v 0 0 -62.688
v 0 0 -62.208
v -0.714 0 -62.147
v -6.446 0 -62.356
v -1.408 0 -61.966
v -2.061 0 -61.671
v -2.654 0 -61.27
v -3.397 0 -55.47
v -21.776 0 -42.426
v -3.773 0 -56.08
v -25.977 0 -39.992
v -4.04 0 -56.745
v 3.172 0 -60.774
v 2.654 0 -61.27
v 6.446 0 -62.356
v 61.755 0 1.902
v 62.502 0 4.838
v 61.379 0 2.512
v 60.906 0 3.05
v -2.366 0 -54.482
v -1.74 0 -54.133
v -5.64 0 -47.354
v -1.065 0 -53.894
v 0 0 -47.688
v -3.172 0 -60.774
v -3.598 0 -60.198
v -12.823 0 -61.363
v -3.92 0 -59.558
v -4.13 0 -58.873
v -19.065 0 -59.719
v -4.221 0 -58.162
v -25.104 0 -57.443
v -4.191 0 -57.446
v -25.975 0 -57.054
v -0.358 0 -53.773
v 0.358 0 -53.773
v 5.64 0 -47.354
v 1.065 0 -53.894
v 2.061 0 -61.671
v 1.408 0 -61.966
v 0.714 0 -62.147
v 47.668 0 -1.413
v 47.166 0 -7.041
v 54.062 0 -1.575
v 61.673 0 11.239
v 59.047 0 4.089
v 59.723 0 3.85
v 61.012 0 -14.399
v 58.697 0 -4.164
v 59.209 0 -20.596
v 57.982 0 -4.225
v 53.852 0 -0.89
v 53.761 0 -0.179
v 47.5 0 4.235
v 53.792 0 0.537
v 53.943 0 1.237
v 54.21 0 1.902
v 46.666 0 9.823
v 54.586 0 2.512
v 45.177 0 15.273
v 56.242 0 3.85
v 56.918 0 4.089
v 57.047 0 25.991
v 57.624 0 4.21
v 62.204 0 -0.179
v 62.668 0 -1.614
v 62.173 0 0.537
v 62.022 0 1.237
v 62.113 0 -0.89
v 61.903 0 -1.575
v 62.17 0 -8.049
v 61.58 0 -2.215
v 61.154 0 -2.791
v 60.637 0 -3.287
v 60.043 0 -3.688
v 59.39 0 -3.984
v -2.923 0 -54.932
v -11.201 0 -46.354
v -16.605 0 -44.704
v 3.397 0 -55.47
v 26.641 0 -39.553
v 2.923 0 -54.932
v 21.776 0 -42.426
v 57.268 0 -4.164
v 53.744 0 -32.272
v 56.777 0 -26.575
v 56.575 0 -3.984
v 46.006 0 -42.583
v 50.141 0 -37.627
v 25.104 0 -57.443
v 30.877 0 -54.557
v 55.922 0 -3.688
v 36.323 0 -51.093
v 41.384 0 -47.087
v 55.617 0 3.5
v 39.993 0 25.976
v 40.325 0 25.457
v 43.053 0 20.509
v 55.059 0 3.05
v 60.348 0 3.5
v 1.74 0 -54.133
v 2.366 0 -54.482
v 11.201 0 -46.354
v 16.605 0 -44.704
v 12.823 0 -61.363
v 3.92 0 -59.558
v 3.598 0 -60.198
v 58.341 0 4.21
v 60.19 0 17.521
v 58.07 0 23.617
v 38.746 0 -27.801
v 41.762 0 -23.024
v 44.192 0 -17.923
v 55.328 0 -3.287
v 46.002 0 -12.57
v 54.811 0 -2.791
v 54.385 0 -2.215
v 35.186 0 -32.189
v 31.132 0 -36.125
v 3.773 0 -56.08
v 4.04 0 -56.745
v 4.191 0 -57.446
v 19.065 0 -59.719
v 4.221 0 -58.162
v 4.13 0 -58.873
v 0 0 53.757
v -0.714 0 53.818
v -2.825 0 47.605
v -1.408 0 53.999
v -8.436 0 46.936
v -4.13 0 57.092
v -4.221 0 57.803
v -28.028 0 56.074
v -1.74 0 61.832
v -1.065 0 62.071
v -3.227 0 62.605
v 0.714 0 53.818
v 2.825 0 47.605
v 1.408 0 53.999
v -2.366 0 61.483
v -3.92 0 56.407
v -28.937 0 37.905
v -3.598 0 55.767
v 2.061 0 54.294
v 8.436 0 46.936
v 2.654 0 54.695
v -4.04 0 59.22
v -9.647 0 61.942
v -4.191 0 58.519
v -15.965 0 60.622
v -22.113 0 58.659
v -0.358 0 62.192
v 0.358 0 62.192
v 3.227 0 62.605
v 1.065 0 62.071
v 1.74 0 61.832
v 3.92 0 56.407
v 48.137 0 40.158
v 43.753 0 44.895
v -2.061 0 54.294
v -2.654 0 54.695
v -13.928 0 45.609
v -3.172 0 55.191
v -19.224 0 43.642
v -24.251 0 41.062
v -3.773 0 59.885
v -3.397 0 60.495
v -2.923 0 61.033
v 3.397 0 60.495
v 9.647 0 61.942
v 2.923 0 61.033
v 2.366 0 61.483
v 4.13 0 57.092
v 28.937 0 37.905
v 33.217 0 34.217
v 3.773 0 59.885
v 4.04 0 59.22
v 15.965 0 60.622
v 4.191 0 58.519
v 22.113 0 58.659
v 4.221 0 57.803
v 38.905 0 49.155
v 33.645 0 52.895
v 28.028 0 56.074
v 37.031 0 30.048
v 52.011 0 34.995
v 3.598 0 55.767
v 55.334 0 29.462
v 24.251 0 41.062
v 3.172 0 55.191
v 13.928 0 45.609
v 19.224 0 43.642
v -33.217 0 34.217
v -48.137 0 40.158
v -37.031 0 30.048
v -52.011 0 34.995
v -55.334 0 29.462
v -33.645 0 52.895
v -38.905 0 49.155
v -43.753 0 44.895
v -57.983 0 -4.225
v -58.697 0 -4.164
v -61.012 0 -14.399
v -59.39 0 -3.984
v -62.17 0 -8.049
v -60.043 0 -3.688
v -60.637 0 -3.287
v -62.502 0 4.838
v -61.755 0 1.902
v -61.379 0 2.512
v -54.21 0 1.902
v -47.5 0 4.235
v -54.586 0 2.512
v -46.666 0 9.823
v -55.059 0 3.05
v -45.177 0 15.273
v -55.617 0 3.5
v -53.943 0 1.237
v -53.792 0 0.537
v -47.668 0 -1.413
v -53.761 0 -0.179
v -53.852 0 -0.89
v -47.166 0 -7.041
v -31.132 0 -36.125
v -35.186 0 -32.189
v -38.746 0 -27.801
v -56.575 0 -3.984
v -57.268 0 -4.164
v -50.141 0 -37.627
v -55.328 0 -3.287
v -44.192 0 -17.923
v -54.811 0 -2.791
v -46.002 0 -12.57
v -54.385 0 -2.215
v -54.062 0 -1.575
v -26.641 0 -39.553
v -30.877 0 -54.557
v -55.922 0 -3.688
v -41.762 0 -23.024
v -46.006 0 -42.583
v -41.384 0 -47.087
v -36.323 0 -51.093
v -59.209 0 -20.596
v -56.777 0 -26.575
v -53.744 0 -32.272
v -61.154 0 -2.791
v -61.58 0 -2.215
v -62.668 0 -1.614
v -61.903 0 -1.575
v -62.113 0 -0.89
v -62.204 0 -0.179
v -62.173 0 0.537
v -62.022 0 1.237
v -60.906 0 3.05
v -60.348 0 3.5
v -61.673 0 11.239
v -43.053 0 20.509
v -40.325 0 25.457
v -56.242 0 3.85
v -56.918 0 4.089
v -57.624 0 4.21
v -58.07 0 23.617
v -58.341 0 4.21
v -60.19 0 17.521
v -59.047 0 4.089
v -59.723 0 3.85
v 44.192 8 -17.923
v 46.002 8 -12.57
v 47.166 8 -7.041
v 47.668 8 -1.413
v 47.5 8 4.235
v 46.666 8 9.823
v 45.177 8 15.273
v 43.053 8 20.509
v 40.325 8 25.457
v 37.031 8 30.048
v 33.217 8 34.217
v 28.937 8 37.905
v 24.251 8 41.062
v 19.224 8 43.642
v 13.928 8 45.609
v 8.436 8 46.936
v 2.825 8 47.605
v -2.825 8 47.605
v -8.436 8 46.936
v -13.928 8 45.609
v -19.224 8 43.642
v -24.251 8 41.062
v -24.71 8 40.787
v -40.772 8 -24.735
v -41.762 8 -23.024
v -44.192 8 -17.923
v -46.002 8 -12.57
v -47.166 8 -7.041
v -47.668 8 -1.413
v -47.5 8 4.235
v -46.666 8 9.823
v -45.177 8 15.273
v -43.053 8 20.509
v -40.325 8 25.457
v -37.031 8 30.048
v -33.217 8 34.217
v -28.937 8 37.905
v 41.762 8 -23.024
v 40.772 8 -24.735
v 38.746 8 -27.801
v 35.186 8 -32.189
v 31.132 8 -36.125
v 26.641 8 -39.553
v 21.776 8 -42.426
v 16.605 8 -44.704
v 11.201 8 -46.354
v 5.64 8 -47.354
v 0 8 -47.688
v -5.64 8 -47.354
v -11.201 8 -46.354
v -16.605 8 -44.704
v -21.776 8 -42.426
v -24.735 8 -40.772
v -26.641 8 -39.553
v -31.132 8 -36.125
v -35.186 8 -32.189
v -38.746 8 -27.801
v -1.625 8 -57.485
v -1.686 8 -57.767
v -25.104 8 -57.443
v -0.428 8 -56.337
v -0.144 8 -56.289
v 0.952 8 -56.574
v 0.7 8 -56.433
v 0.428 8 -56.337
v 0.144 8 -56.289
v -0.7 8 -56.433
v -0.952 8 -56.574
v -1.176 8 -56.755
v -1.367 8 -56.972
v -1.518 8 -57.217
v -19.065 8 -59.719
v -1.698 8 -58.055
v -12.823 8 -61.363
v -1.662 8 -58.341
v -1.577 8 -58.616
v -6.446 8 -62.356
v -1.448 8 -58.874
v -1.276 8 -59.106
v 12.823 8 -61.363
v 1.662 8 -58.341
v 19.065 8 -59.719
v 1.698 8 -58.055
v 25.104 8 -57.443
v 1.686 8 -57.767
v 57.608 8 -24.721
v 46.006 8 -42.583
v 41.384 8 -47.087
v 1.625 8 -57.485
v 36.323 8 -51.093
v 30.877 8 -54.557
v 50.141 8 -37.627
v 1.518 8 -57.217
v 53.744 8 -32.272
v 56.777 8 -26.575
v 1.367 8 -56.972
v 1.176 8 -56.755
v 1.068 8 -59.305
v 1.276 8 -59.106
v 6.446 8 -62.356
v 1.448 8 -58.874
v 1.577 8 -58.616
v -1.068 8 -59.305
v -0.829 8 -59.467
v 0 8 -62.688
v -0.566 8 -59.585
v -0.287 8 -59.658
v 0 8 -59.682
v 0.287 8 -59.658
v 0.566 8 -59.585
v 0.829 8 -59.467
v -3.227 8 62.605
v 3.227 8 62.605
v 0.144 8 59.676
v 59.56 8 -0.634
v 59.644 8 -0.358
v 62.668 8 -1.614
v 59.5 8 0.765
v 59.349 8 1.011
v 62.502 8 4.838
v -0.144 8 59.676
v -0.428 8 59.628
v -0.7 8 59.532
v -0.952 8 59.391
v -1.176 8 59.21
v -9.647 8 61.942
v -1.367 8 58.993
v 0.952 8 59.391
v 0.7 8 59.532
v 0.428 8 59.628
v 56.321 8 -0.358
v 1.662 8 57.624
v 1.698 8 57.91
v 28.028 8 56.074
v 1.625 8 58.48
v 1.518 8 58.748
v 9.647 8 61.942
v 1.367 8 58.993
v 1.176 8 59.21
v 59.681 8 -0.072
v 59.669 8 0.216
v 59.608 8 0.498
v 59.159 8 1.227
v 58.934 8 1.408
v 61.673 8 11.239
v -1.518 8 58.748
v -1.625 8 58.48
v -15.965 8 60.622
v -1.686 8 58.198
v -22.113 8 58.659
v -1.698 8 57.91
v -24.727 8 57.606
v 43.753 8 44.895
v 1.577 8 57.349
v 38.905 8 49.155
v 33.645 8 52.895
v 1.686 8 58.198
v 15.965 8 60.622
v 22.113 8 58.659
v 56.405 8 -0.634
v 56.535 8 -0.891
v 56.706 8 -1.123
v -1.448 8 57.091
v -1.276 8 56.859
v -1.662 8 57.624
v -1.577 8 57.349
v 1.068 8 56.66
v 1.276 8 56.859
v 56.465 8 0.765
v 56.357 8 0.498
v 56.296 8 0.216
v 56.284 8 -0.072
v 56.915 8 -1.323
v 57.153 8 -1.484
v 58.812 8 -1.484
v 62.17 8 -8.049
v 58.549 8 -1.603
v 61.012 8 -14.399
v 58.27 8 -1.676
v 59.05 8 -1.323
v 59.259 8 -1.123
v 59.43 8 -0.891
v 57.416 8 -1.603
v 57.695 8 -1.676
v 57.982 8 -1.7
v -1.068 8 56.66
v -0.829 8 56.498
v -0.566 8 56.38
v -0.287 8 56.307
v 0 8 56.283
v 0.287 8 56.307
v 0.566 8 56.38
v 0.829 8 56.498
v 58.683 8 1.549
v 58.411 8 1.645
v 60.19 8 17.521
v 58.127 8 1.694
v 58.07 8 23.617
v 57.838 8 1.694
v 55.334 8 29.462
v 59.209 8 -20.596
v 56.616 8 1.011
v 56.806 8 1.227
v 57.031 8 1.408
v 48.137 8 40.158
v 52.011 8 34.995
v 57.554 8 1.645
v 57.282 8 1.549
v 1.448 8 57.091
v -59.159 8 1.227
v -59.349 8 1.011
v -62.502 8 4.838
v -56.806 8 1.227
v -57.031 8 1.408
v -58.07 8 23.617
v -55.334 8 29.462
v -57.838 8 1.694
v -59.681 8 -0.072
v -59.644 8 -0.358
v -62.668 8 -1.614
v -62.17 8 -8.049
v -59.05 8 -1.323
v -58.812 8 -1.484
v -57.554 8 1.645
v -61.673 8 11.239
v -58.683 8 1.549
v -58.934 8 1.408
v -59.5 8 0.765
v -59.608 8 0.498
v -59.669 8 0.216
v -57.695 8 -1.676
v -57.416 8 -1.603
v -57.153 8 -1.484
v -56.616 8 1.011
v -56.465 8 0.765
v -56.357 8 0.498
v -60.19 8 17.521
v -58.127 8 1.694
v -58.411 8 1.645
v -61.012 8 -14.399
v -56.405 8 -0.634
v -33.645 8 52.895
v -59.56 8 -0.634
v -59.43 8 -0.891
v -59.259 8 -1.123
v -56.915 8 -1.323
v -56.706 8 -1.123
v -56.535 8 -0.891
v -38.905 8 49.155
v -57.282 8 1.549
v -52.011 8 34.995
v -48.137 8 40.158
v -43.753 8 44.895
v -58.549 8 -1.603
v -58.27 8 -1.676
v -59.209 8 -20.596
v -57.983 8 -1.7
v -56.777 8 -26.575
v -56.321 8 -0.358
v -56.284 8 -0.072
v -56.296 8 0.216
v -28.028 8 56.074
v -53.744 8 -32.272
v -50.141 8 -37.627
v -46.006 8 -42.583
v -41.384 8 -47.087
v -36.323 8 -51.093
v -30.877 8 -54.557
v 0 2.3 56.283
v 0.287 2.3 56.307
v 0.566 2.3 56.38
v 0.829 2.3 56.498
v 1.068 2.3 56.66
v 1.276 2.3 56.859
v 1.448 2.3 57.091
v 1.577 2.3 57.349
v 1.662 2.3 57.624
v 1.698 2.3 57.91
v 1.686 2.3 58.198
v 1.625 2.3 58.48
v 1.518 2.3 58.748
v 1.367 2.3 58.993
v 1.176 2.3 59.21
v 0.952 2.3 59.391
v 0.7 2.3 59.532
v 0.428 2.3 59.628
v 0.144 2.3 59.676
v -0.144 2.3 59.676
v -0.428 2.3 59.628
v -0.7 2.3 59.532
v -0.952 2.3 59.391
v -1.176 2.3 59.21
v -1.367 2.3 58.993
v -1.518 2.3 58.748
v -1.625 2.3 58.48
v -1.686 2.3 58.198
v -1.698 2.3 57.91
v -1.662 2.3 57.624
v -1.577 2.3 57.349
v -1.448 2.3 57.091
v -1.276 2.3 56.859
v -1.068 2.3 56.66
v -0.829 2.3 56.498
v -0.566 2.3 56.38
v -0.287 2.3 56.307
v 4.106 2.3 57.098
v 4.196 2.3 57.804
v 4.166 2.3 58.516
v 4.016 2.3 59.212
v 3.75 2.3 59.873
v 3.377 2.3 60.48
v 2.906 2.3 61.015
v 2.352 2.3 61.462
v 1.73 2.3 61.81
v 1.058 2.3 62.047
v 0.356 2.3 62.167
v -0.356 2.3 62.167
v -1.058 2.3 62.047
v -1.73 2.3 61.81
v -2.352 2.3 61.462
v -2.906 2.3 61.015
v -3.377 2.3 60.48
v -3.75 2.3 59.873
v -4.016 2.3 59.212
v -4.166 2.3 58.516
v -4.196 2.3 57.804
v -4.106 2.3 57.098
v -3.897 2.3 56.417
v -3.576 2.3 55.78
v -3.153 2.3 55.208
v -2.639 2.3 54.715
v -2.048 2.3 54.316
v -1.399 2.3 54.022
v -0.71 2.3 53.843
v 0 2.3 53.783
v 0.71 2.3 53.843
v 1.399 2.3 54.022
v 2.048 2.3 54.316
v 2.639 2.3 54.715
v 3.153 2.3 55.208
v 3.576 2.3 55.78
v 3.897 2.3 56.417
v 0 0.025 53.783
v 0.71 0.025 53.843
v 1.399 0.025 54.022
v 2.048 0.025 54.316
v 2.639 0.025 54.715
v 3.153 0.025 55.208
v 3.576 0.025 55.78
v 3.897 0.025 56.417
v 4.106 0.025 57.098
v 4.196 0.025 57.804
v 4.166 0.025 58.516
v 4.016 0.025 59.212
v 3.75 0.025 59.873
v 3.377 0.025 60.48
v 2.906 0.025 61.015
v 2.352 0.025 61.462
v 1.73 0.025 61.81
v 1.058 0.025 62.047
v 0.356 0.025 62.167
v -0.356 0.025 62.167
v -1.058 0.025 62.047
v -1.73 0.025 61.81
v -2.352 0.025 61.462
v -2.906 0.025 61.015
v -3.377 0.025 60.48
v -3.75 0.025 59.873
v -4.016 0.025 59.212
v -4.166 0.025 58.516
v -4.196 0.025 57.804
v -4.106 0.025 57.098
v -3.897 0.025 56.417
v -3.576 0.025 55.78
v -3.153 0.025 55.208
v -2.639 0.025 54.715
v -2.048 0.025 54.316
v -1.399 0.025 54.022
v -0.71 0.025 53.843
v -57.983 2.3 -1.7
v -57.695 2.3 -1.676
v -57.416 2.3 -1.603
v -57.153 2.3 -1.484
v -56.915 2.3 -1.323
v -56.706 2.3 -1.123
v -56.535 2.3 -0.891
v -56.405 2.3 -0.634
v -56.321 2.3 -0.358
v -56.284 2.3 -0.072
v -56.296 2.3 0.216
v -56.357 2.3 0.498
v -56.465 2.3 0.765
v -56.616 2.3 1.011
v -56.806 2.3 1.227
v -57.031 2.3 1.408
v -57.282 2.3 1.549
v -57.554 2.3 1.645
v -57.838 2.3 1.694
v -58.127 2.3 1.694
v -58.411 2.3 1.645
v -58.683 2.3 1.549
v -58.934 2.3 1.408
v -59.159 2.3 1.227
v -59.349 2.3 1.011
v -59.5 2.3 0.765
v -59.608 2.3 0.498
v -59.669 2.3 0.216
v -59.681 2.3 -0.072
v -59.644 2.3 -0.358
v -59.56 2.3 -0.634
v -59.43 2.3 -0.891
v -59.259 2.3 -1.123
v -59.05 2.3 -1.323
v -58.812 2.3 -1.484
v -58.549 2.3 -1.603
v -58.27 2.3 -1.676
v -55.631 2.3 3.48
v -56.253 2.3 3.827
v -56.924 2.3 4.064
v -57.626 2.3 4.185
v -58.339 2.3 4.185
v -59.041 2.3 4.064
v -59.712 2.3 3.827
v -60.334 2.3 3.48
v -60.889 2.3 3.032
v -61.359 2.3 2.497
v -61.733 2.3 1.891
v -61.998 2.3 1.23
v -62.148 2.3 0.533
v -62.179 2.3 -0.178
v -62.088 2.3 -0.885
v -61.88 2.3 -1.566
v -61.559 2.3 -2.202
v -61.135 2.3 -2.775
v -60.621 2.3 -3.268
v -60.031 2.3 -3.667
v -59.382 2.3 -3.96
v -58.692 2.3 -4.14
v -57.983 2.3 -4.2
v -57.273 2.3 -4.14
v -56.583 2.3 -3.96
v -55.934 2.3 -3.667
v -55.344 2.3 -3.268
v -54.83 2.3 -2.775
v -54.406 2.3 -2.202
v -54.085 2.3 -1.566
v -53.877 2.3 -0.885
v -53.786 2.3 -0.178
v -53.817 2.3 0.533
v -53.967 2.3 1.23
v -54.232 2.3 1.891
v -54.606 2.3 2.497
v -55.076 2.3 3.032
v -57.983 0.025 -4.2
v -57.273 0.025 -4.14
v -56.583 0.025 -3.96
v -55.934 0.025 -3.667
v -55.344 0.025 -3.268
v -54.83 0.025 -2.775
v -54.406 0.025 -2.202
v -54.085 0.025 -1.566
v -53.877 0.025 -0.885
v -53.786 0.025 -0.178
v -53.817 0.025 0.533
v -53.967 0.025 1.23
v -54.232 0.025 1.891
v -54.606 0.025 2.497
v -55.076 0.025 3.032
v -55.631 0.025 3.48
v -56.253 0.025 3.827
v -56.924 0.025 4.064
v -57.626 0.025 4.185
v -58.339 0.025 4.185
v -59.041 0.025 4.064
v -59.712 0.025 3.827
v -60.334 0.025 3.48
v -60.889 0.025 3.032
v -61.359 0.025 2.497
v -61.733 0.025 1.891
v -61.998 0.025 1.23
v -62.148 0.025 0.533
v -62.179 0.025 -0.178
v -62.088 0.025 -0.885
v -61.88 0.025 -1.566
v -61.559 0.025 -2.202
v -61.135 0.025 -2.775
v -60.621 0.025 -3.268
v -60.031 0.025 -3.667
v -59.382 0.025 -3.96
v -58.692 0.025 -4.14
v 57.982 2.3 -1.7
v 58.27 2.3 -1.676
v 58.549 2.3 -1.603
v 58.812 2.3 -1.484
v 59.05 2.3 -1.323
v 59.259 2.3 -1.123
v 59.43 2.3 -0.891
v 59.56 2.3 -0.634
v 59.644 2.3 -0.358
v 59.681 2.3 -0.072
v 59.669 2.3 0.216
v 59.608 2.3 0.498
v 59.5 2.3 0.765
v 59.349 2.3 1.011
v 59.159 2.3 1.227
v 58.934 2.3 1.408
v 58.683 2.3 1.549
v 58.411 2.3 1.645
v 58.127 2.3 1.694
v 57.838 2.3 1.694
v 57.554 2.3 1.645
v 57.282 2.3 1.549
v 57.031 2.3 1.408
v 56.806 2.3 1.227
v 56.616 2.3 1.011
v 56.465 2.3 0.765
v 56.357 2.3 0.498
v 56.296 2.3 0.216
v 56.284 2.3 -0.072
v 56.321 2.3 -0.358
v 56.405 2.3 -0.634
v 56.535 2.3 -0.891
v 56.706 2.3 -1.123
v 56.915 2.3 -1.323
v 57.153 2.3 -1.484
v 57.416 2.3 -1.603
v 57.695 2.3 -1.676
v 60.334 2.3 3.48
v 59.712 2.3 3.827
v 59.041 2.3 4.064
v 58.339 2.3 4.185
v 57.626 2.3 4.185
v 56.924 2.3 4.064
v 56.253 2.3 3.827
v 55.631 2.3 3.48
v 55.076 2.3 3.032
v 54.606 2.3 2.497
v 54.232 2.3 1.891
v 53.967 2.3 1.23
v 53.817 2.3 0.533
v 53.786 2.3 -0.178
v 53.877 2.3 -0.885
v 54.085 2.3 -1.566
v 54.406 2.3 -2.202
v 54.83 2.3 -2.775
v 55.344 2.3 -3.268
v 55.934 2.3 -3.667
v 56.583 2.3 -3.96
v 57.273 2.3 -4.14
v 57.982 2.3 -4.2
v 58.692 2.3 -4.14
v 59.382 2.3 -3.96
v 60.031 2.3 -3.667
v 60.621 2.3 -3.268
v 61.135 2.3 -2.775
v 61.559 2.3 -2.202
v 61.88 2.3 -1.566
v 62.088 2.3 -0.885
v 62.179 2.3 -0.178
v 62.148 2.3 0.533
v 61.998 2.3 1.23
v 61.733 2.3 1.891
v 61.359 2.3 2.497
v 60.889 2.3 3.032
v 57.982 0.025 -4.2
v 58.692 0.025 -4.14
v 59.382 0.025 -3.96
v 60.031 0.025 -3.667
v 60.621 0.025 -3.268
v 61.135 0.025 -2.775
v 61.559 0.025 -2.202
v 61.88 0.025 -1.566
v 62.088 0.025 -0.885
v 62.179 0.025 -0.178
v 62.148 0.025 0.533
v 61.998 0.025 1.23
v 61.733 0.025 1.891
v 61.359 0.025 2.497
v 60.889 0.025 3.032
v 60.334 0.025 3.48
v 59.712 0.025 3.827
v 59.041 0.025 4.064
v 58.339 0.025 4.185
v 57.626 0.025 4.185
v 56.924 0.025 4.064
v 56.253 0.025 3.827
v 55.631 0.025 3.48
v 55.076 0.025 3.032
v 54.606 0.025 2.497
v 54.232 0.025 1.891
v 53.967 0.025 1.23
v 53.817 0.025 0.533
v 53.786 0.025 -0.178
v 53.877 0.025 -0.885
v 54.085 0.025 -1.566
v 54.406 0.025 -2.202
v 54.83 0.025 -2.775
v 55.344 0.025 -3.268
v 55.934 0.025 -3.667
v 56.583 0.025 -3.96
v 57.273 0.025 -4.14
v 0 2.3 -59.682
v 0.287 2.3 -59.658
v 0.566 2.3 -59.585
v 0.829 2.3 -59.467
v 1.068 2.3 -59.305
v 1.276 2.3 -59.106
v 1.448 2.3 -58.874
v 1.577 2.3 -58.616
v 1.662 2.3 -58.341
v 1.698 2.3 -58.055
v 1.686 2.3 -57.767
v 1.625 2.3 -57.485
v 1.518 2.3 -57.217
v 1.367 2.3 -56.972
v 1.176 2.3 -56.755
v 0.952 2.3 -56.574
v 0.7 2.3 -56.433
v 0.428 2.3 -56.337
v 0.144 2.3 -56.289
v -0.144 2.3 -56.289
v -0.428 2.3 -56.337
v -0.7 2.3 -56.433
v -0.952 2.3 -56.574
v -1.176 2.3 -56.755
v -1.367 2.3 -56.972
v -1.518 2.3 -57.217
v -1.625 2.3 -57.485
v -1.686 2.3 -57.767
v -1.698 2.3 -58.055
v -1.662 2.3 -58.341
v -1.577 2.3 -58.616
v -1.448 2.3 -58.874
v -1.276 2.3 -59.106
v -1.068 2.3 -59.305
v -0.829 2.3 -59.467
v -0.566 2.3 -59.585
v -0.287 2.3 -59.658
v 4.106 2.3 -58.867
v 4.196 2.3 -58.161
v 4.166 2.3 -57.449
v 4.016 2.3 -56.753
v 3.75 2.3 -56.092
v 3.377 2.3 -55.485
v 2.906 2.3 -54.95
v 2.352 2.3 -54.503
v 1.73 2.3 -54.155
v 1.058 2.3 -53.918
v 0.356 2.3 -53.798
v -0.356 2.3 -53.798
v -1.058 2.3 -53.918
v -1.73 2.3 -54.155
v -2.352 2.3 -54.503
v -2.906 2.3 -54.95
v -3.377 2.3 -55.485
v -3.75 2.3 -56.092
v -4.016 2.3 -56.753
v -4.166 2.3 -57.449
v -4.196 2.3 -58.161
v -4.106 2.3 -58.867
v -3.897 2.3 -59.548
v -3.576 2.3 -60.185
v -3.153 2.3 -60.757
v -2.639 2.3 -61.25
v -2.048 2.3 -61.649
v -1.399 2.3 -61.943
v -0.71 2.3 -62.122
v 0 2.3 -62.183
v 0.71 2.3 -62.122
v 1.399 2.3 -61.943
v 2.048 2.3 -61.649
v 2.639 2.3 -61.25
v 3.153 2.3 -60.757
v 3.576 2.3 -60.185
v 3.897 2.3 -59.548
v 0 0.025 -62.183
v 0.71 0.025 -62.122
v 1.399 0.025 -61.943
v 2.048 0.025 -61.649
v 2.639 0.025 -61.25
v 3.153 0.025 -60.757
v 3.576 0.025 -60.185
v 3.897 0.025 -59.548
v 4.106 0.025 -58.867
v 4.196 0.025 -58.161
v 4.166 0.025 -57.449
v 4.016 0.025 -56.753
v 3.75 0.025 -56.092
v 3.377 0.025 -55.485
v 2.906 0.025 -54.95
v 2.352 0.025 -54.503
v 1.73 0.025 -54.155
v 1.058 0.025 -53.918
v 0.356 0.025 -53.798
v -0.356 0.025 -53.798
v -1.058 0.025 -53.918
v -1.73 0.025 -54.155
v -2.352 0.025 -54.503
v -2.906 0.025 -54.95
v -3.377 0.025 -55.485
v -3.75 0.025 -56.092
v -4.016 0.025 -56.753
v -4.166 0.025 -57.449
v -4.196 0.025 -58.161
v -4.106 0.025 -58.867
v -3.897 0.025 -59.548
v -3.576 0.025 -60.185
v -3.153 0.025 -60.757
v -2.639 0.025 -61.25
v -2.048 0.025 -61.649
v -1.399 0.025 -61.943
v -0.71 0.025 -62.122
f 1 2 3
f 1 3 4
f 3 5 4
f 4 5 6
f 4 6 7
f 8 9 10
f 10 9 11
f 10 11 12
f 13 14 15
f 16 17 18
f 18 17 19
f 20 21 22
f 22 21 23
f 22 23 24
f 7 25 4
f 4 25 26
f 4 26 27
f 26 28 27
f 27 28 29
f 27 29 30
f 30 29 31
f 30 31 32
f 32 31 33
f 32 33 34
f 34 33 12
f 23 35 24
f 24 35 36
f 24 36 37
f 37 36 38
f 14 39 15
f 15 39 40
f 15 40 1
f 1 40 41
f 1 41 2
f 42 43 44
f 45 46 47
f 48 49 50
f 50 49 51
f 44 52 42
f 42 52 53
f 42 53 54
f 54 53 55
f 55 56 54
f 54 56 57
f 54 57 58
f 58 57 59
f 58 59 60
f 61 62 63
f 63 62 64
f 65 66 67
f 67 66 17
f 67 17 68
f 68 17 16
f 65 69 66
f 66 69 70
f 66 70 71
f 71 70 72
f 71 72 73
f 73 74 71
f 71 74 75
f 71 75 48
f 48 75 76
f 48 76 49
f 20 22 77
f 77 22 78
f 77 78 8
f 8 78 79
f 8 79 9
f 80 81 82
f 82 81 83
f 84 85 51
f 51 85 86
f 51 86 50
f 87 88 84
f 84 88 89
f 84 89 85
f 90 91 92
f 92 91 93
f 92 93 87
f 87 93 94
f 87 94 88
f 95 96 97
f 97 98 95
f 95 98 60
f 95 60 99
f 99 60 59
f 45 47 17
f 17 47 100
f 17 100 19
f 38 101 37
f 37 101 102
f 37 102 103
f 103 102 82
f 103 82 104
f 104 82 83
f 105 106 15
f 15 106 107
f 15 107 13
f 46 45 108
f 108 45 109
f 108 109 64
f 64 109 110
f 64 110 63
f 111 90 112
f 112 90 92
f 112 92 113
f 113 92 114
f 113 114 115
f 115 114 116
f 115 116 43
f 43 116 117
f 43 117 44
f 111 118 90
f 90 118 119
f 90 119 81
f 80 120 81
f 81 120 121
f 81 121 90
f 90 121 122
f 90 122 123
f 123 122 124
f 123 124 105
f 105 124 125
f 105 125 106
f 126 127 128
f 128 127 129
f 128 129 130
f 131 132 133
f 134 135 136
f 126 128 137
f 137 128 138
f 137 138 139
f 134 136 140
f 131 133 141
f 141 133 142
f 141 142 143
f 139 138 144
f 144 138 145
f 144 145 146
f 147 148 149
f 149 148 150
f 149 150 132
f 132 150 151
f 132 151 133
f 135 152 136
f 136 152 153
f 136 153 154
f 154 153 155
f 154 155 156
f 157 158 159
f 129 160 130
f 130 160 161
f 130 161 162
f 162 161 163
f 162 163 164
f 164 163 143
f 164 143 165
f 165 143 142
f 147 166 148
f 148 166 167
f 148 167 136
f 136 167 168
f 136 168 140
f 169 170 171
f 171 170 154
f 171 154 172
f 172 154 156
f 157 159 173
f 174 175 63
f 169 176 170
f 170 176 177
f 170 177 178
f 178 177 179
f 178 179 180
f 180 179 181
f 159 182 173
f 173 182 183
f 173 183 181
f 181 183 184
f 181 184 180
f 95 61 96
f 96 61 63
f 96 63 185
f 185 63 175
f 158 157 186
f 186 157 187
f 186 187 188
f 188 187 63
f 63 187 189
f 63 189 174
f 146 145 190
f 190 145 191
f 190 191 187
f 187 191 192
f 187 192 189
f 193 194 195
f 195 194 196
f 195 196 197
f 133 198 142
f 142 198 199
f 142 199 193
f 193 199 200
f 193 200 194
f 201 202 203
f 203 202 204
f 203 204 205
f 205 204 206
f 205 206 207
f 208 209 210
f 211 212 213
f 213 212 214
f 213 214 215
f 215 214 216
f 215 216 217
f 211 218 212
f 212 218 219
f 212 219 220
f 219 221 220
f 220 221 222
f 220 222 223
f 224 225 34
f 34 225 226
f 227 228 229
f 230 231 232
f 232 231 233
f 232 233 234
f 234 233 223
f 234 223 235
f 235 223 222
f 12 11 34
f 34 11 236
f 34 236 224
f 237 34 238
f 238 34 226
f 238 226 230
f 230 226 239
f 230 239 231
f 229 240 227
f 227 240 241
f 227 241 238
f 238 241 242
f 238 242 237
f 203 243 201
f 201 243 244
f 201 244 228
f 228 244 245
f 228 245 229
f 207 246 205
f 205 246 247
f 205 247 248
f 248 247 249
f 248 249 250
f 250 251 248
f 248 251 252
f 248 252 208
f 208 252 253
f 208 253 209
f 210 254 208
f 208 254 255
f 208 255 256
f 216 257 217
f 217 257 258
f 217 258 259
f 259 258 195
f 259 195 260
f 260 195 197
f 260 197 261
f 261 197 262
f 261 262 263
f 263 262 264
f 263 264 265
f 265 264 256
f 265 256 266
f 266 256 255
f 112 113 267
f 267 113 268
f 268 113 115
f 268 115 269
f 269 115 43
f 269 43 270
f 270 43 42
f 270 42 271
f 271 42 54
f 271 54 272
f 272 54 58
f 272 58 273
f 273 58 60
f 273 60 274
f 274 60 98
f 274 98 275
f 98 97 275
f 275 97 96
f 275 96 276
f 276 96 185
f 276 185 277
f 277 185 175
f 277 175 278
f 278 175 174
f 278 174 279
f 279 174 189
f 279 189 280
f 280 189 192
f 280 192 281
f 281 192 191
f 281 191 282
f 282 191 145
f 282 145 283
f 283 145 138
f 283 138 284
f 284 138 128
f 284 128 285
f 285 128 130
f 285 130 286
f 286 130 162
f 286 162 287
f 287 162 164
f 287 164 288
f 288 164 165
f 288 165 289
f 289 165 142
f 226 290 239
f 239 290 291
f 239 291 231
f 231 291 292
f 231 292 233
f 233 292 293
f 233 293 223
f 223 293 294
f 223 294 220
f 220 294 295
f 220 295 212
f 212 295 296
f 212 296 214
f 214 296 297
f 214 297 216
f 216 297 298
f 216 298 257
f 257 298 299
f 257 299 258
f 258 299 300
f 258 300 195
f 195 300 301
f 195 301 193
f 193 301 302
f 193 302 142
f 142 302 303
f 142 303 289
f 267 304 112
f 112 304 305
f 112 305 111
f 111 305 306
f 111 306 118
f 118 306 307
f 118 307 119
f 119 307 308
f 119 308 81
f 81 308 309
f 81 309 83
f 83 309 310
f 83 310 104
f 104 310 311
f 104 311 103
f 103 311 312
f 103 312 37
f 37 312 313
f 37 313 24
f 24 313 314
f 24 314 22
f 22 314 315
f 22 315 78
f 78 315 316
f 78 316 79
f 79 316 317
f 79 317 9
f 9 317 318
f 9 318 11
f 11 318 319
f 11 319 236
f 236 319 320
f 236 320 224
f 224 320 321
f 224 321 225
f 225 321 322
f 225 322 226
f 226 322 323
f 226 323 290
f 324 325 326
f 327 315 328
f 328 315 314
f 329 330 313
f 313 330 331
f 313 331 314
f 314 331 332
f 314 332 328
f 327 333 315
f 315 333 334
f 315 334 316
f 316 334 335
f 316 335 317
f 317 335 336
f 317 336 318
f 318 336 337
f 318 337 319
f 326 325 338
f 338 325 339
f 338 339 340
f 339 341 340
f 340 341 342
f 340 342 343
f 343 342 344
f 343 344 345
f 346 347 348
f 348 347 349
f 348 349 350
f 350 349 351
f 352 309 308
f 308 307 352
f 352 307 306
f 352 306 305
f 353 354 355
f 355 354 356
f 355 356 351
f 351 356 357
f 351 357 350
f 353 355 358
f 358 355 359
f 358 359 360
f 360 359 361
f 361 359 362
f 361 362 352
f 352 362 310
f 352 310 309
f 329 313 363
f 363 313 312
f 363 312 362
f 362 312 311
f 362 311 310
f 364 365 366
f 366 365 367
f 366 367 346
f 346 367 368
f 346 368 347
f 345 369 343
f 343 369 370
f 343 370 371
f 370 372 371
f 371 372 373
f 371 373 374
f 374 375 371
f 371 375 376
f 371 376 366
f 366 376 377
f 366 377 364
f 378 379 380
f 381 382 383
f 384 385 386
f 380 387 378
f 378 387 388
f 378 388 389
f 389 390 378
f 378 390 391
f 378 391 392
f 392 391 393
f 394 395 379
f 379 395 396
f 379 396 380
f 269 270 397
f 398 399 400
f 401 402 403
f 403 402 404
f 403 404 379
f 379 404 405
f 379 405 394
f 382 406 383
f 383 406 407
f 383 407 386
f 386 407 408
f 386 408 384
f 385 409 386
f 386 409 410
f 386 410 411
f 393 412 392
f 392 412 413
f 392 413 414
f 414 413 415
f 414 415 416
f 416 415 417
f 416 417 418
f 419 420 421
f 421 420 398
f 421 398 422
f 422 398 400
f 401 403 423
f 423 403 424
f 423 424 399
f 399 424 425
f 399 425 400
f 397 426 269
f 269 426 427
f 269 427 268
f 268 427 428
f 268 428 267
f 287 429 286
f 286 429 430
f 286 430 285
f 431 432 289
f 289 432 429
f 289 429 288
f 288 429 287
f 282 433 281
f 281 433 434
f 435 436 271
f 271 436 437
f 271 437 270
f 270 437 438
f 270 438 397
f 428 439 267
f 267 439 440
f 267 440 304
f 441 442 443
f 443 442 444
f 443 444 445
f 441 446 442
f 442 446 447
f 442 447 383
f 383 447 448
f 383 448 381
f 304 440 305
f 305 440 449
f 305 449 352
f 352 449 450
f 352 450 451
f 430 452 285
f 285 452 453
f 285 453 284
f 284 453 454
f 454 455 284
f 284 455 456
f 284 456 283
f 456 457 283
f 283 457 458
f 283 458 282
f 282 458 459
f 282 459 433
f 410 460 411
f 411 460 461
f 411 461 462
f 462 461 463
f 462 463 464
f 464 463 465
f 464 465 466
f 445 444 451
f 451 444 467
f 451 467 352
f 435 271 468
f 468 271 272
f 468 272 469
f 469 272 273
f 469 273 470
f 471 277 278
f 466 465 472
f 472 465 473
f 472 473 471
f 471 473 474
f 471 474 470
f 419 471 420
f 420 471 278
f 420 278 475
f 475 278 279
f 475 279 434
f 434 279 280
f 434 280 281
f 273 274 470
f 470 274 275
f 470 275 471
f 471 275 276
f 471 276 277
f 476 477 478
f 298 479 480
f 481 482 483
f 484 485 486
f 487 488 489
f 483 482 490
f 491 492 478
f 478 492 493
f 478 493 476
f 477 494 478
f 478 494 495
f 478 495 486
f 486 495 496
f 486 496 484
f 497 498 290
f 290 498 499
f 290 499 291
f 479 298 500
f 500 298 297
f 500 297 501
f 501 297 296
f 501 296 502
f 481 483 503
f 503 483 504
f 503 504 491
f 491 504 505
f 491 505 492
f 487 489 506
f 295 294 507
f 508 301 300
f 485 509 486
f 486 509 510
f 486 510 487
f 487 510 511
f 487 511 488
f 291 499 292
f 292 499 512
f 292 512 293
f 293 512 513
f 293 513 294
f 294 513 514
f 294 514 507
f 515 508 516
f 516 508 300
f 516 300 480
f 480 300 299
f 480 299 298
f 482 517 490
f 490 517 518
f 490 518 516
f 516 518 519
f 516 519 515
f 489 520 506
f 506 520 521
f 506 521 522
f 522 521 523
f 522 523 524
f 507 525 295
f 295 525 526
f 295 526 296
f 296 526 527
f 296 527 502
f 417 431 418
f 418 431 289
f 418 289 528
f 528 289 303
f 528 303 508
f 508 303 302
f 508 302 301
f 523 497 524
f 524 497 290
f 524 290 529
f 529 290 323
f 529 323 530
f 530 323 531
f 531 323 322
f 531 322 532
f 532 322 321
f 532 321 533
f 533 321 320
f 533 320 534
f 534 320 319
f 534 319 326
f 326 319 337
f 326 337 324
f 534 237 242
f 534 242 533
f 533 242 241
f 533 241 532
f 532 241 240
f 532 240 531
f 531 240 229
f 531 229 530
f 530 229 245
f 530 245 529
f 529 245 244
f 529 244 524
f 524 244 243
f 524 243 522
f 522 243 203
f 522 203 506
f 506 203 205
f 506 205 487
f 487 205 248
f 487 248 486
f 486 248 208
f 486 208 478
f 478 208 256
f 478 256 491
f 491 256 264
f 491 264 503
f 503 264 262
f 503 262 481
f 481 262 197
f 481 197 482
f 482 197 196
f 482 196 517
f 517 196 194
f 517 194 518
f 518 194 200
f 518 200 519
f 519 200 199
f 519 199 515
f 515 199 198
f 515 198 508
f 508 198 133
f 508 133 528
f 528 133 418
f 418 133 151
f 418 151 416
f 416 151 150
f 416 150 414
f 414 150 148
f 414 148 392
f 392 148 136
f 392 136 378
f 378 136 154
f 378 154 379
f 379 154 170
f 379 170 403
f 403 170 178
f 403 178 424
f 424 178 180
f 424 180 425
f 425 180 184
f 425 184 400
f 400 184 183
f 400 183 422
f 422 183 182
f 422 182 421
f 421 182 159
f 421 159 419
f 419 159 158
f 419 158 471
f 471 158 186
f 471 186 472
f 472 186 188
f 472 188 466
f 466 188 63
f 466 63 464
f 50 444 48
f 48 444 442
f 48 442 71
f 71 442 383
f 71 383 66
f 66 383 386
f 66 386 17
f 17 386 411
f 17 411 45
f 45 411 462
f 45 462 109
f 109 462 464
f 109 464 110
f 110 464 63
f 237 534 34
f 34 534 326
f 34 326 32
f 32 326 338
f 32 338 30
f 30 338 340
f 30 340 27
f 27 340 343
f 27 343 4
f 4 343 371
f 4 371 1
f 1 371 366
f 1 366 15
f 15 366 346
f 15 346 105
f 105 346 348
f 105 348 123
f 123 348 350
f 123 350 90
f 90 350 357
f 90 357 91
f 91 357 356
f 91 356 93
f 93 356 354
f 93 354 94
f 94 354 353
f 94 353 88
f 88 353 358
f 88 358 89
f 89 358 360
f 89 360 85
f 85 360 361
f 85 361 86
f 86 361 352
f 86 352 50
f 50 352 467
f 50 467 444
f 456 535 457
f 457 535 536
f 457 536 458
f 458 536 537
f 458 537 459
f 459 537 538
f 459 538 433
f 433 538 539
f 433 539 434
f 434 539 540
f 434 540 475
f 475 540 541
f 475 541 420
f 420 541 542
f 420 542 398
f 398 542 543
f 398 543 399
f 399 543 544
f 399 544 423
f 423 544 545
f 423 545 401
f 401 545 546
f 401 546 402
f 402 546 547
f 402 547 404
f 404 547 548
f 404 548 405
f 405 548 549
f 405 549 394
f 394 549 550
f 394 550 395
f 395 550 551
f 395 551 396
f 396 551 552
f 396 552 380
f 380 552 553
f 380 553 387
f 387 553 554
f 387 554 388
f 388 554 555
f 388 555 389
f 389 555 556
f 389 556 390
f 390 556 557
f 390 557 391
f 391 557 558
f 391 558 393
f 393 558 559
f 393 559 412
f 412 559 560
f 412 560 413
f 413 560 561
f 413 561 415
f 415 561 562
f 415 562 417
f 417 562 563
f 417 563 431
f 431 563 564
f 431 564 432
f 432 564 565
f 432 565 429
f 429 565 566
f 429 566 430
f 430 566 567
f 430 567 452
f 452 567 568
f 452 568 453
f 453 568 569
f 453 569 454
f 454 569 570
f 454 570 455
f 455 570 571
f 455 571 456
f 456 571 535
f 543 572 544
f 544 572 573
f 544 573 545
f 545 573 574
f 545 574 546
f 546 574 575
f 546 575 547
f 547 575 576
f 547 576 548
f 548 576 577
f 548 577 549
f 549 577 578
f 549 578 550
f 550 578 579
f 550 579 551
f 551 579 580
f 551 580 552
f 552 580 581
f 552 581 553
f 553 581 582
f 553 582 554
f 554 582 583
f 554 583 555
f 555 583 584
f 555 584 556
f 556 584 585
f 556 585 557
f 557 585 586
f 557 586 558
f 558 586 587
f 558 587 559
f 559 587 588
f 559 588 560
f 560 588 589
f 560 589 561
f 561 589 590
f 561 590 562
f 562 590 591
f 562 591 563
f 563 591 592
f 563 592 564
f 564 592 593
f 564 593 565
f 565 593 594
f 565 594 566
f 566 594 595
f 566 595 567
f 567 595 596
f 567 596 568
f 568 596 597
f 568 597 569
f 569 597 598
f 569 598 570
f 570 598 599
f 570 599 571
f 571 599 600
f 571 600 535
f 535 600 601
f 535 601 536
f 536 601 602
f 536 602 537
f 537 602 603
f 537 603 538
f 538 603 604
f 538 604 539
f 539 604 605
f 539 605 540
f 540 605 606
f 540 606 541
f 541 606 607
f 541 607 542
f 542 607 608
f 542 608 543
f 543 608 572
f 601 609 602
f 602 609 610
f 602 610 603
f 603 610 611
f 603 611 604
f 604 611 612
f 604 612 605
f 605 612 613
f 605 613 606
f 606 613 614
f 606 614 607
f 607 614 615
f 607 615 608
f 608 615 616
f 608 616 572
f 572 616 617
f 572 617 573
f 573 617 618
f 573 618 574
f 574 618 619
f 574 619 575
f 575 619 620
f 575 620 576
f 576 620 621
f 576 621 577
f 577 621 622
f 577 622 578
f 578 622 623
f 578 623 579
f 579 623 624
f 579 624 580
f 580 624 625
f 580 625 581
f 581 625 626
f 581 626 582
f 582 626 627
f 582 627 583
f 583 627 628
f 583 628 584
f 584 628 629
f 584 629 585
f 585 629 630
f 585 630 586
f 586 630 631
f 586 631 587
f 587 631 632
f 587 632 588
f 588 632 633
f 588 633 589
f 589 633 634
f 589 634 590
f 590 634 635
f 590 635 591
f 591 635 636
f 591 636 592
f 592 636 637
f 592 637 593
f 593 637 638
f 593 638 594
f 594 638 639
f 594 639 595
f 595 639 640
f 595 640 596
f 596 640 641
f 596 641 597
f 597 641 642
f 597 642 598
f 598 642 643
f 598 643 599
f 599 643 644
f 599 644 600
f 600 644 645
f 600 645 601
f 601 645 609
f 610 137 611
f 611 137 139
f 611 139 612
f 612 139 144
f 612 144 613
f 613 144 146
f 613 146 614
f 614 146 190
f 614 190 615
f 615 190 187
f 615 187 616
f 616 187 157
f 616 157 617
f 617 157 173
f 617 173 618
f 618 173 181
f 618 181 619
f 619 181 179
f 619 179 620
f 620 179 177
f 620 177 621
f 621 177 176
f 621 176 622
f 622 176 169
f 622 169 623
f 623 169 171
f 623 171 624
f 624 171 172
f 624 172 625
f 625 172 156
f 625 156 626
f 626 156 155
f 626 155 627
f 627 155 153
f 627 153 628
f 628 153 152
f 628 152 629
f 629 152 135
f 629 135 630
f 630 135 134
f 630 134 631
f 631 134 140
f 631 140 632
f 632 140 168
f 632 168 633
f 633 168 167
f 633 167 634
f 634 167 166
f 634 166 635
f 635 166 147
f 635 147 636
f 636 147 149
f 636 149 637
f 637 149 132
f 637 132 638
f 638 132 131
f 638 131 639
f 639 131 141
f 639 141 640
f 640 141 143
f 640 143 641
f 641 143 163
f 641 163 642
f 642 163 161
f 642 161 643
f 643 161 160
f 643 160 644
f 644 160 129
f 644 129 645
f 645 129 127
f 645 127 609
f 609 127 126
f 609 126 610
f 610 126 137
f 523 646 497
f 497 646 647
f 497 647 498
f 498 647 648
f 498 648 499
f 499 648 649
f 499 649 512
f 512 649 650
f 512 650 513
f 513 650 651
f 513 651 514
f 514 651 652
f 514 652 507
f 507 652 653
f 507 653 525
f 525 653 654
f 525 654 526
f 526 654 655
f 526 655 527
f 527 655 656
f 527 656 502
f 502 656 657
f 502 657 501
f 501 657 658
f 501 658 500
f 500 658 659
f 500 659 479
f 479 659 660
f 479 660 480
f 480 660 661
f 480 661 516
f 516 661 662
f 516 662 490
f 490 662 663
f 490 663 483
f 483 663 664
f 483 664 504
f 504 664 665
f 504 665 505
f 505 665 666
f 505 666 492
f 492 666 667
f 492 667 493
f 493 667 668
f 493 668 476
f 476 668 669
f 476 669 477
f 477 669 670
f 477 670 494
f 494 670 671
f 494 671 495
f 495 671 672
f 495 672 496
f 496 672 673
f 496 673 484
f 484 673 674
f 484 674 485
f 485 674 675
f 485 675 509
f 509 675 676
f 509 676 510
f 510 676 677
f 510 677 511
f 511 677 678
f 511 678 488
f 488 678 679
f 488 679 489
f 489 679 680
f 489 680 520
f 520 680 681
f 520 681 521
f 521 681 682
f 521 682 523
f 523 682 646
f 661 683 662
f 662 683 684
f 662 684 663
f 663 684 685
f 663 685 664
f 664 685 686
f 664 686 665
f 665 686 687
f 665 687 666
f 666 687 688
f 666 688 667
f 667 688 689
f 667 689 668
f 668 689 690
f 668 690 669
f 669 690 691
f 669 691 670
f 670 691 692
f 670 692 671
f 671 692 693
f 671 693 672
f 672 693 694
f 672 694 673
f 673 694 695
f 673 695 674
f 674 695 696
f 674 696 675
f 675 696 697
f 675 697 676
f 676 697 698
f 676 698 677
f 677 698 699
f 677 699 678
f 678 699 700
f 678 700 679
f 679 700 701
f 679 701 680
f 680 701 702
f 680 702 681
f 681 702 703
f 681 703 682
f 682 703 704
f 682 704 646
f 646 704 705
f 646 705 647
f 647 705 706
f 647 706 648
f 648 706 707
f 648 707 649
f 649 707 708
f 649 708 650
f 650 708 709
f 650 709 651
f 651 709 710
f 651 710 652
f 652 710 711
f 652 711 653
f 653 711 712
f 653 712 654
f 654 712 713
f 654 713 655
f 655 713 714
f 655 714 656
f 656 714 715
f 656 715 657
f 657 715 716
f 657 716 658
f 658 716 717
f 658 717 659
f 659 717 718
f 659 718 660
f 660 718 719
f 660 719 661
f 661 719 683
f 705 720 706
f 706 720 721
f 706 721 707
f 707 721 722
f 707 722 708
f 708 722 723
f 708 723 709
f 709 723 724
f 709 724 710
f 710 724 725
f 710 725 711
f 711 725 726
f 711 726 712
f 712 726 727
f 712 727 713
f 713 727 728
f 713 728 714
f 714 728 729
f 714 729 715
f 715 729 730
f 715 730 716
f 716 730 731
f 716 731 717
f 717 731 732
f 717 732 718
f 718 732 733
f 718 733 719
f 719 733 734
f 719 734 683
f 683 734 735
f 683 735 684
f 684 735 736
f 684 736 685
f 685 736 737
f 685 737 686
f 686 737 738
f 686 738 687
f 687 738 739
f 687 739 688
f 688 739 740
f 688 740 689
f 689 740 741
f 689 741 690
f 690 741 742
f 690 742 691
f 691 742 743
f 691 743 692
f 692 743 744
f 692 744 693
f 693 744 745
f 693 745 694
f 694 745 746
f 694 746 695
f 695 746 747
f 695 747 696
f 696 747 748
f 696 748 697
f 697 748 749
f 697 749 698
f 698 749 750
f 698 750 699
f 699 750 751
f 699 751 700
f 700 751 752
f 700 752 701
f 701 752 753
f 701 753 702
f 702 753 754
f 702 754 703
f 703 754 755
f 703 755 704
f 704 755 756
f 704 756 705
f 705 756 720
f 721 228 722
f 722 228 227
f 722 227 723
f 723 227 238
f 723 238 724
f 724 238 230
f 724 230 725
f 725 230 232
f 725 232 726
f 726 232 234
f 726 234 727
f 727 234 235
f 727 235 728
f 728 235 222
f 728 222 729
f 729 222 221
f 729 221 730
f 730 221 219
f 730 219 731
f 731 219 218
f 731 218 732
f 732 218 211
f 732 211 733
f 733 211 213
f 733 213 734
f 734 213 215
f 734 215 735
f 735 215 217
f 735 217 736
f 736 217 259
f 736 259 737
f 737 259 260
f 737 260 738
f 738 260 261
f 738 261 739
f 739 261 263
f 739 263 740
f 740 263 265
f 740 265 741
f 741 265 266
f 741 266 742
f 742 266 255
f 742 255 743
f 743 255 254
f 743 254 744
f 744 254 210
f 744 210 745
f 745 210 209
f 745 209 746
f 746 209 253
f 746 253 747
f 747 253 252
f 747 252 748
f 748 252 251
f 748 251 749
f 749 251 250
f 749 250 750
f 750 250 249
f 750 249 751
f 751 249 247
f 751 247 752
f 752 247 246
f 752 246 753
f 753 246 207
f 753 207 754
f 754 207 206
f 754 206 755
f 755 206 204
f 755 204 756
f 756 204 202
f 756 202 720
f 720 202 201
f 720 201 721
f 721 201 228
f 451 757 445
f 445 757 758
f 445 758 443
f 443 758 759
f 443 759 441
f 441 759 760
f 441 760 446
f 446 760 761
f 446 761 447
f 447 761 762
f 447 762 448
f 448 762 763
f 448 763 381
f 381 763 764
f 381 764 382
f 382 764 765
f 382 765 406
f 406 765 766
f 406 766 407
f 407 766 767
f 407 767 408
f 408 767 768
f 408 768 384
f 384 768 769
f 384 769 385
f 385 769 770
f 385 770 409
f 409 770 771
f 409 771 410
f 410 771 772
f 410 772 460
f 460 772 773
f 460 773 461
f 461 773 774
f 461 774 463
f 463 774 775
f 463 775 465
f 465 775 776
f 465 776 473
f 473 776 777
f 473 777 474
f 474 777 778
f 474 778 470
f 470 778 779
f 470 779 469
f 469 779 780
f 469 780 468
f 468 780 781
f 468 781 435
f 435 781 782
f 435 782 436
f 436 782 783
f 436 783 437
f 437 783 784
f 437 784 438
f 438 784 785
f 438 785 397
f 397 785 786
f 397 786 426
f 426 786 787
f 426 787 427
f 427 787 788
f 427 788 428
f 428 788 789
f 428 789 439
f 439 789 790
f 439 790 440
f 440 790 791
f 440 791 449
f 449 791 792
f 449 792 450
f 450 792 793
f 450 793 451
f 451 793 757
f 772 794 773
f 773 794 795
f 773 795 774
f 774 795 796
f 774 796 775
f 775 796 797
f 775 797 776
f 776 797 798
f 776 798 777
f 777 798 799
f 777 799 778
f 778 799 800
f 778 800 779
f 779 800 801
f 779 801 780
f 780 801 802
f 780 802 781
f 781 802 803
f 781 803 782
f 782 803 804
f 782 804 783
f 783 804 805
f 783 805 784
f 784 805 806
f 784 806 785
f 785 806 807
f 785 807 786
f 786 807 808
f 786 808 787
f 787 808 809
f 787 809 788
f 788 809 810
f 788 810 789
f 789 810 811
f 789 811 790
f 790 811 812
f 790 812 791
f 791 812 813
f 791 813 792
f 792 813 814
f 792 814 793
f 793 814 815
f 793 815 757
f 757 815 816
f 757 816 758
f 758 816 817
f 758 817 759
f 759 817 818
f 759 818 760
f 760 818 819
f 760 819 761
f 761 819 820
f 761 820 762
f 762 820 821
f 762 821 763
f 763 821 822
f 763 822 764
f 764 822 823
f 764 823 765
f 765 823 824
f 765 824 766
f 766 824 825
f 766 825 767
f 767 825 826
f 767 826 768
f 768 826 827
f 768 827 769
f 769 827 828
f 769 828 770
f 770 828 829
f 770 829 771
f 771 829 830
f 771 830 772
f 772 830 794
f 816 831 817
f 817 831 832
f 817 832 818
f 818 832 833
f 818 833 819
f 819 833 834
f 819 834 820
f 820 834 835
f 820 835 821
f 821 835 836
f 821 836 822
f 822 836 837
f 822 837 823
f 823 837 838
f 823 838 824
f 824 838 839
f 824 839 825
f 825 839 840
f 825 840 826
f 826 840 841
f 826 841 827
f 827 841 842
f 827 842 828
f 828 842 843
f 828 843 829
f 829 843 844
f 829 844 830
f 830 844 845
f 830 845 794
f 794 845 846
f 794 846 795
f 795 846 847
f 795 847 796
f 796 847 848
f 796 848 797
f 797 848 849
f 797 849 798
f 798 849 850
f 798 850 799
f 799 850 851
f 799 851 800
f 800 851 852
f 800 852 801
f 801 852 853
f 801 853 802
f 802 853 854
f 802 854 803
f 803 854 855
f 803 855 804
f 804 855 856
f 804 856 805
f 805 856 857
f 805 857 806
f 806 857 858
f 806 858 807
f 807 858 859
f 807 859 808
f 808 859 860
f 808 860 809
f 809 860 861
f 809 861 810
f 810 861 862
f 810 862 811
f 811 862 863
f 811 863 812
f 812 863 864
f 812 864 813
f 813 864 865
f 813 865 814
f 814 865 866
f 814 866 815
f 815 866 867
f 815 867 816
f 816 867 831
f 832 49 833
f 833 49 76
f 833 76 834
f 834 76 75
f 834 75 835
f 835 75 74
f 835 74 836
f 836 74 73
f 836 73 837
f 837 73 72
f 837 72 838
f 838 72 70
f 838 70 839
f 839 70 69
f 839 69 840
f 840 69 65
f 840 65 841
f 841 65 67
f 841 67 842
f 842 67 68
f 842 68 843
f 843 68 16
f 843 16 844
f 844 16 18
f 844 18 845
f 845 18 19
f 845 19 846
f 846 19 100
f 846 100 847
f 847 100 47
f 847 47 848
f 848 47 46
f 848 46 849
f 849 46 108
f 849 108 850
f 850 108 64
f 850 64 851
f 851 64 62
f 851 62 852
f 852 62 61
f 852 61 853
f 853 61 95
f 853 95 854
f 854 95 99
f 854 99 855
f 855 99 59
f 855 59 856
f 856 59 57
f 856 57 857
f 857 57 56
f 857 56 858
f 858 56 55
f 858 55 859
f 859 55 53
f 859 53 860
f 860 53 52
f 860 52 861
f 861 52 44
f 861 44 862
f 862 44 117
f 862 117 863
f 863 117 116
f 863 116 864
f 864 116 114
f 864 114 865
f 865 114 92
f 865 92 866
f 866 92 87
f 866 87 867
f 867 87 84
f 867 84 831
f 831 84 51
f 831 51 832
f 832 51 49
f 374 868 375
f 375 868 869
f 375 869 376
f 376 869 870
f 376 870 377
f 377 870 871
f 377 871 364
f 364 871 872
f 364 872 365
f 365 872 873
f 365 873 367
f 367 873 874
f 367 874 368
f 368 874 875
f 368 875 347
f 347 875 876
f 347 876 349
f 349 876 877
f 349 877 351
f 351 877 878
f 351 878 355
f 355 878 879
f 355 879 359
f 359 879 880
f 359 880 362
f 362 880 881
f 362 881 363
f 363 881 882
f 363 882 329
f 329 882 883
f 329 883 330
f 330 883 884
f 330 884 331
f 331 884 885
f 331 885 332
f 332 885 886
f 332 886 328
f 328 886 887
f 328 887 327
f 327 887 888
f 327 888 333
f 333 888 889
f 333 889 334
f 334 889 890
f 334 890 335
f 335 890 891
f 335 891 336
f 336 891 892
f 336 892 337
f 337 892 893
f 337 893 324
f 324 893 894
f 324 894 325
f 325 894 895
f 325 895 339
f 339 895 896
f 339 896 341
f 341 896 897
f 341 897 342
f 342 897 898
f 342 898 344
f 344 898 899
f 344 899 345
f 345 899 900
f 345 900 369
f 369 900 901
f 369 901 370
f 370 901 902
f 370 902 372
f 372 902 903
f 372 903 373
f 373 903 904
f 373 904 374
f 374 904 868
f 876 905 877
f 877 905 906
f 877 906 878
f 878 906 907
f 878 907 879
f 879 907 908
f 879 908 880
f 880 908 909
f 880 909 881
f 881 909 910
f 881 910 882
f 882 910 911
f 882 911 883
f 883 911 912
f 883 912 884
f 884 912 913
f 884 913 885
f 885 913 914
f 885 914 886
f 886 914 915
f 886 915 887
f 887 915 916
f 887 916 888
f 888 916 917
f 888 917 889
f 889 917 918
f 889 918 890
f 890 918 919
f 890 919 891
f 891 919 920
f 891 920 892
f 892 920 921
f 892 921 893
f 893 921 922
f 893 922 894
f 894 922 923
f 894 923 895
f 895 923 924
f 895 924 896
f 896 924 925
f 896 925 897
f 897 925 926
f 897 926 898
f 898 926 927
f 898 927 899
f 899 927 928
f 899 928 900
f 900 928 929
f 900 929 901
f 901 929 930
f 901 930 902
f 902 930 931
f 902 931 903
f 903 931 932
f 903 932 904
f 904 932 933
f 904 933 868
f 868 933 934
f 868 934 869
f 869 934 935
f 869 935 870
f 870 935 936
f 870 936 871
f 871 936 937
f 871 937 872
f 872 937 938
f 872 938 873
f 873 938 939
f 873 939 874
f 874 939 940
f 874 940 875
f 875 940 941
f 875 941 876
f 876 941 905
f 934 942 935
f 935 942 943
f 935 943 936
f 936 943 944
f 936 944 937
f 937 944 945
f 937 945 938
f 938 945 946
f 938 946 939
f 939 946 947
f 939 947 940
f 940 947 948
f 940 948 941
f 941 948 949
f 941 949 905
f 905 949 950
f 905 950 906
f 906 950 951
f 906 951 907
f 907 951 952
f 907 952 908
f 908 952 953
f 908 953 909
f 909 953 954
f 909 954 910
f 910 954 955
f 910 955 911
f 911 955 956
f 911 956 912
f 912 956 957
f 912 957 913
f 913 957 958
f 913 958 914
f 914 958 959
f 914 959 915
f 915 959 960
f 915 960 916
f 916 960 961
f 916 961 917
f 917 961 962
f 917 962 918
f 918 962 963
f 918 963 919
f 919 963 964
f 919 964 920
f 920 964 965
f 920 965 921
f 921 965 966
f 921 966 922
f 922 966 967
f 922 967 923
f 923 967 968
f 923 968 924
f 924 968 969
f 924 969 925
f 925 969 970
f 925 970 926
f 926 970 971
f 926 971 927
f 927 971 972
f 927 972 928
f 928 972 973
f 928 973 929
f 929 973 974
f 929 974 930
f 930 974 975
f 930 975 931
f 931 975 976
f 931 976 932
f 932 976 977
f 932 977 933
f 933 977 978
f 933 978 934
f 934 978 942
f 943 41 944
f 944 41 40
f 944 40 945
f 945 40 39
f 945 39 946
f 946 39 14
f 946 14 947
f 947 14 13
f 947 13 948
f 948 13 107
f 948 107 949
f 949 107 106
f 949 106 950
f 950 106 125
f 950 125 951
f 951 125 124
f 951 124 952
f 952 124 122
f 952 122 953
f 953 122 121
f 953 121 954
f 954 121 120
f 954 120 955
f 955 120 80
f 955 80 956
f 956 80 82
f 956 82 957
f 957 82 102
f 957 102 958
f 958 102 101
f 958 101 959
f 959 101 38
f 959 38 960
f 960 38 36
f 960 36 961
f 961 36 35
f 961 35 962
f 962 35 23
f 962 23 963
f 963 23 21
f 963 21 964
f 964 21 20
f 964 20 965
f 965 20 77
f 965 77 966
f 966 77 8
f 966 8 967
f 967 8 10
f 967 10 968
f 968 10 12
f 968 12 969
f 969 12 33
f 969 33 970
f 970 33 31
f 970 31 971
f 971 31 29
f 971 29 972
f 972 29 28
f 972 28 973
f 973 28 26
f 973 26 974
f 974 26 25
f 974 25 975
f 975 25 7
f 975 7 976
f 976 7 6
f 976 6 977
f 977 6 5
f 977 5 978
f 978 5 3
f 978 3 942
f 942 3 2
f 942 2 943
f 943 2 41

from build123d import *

# Parameters (mm, degrees)
SKETCH1_W                                     = 15
SKETCH1_H                                     = 8
CBORE_FOR_M3_HEX_HEAD_MACHINE_SCREW1_AT_COUNT = 2
CBORE_FOR_M3_HEX_HEAD_MACHINE_SCREW1_AT_PITCH = 81.99963788
CBORE_FOR_M3_HEX_HEAD_MACHINE_SCREW1_2_COUNT  = 2
CBORE_FOR_M3_HEX_HEAD_MACHINE_SCREW1_2_PITCH  = 81.99963788
CBORE_FOR_M3_HEX_HEAD_MACHINE_SCREW1_3_COUNT  = 2
CBORE_FOR_M3_HEX_HEAD_MACHINE_SCREW1_3_PITCH  = 115.965


with BuildPart() as part:
    # Sketch1 → Revolve1 (revolve)
    with BuildSketch(Plane.XY, mode=Mode.PRIVATE) as revolve1_sk:
        with Locations((55.1885, 4)):
            Rectangle(SKETCH1_W, SKETCH1_H)
    revolve(revolve1_sk.sketch.rotate(Axis((0, 0, 0), (0, 1, 0)), 90), axis=Axis((0, 0, 0), (0, 1, 0)))

    # Sketch3 → CBORE for M3 Hex Head Machine Screw1 (revolve, cut)
    with BuildSketch(Plane(origin=(0, 0, -57.9825), x_dir=(0, 0, -1), z_dir=(1, 0, 0))):
        Polygon((0, 0), (0, 8), (1.7, 8), (1.7, 2.3), (4.2, 2.3), (4.2, 0.025), (4.225, 0), align=None)
    cbore_for_m3_hex_head_machine_screw1 = revolve(axis=Axis((0, -6.35, -57.9825), (0, 1, 0)), mode=Mode.SUBTRACT)

    # CBORE for M3 Hex Head Machine Screw1 at: CBORE for M3 Hex Head Machine Screw1 ×2
    with Locations(*[Vector(0.7071067811865476, 0, 0.7071067811865476) * (i * CBORE_FOR_M3_HEX_HEAD_MACHINE_SCREW1_AT_PITCH) for i in range(1, CBORE_FOR_M3_HEX_HEAD_MACHINE_SCREW1_AT_COUNT)]):
        add(cbore_for_m3_hex_head_machine_screw1, mode=Mode.SUBTRACT)

    # CBORE for M3 Hex Head Machine Screw1 2: CBORE for M3 Hex Head Machine Screw1 ×2
    with Locations(*[Vector(-0.7071067811865476, 0, 0.7071067811865476) * (i * CBORE_FOR_M3_HEX_HEAD_MACHINE_SCREW1_2_PITCH) for i in range(1, CBORE_FOR_M3_HEX_HEAD_MACHINE_SCREW1_2_COUNT)]):
        add(cbore_for_m3_hex_head_machine_screw1, mode=Mode.SUBTRACT)

    # CBORE for M3 Hex Head Machine Screw1 3: CBORE for M3 Hex Head Machine Screw1 ×2
    with Locations(*[(0, 0, i * CBORE_FOR_M3_HEX_HEAD_MACHINE_SCREW1_3_PITCH) for i in range(1, CBORE_FOR_M3_HEX_HEAD_MACHINE_SCREW1_3_COUNT)]):
        add(cbore_for_m3_hex_head_machine_screw1, mode=Mode.SUBTRACT)


solid = part.part
